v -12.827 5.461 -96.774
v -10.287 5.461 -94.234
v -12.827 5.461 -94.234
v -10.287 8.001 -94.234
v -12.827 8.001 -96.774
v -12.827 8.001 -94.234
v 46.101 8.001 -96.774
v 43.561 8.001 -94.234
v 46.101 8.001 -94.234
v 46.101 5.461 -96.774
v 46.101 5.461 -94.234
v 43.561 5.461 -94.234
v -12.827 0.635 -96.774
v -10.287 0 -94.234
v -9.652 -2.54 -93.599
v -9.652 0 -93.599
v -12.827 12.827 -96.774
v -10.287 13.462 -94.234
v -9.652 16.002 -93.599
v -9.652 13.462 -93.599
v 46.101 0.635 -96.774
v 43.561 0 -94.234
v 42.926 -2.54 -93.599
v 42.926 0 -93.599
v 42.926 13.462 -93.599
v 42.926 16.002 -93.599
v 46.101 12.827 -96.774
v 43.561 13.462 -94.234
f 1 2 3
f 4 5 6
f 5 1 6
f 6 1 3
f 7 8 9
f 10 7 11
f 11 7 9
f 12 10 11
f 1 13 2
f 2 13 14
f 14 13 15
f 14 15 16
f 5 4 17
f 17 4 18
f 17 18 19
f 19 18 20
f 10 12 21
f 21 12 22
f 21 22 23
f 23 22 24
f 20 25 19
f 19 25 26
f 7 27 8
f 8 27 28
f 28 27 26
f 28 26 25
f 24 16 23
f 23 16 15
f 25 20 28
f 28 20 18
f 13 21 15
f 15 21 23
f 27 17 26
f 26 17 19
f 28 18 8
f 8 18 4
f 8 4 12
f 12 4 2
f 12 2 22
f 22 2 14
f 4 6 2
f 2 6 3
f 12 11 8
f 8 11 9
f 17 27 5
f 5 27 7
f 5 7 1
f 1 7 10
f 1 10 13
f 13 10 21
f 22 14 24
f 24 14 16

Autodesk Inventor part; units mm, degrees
ref_plane "YZ Plane" through (0, 0, 0) normal (1, 0, 0) x (0, 1, 0)
ref_plane "XZ Plane" through (0, 0, 0) normal (0, 1, 0) x (-1, 0, 0)
sketch "Sketch1" plane through (0, 0, 0) normal (0, 0, 1) x (1, 0, 0)
  line L0 (0, 0) -> (33.274, 0)
  line L1 (33.274, 0) -> (33.274, 13.462)
  line L2 (33.274, 13.462) -> (0, 13.462)
  line L3 (0, 13.462) -> (0, 0)
  line L4 (-2.54, 16.002) -> (35.814, 16.002)
  line L5 (35.814, 16.002) -> (35.814, -2.54)
  line L6 (35.814, -2.54) -> (-2.54, -2.54)
  line L7 (-2.54, -2.54) -> (-2.54, 16.002)
  dimension "d0" = 33.274
  dimension "d1" = 13.462
  dimension "d2" = 2.54
extrude "Extrusion1" add sketch "Sketch1" against normal blind 13.208
sketch "Sketch3" plane through (0, 0, 0) normal (0, 0, 1) x (1, 0, 0)
  line L0 (14.986, 16.002) -> (14.986, 13.462)
  line L1 (0, 13.462) -> (33.274, 13.462)
  line L2 (35.814, 16.002) -> (-2.54, 16.002)
  line L3 (-2.54, 16.002) -> (-2.54, -2.54)
  line L4 (18.288, 16.002) -> (18.288, 13.462)
  line L5 (35.814, -2.54) -> (35.814, 16.002)
  line L6 (14.986, 16.002) -> (18.288, 16.002)
  line L7 (18.288, 13.462) -> (14.986, 13.462)
  line L8 (33.274, 13.462) -> (33.274, 0)
  line L9 (0, 0) -> (0, 13.462)
  dimension "d5" = 0
  dimension "d6" = 0
  dimension "d7" = 14.986
  dimension "d8" = 14.986
extrude "Extrusion2" cut sketch "Sketch3" against normal blind 7.62
sketch "Sketch4" plane through (0, 0, 0) normal (0, 1, 0) x (-1, 0, 0)
  line L0 (10.287, -23.368) -> (-43.561, -23.368)
  line L1 (-43.561, -23.368) -> (-43.561, -94.234)
  line L2 (-43.561, -94.234) -> (10.287, -94.234)
  line L3 (10.287, -94.234) -> (10.287, -23.368)
  circle A0 centre (-41.529, -25.4) radius 1.016
  circle A1 centre (8.255, -25.4) radius 1.016
  circle A2 centre (8.255, -92.202) radius 1.016
  circle A3 centre (-41.529, -92.202) radius 1.016
  line L4 (-33.274, -13.208) -> (0, -13.208) projected
  line L5 (-16.637, -13.208) -> (-16.637, -16.4825)
  point P0 (0, 0)
  dimension "d11" = 53.848
  dimension "d12" = 70.866
  dimension "d14" = 2.032
  dimension "d15" = 2.032
  dimension "d16" = 2.032
  dimension "d17" = 2.032
  dimension "d18" = 2.032
  dimension "d19" = 2.032
  dimension "d20" = 2.032
  dimension "d21" = 2.032
  dimension "d22" = 2.032
  dimension "d23" = 2.032
  dimension "d24" = 2.032
  dimension "d25" = 2.032
  dimension "d26" = 26.924
  dimension "d27" = 10.16
ref_plane "Work Plane1" through (0, 0, -23.368) normal (0, 0, -1) x (-1, 0, 0)
sketch "Sketch5" plane through (0, 0, -23.368) normal (0, 0, -1) x (-1, 0, 0)
  line L0 (10.287, 0) -> (-43.561, 0) projected
  line L1 (-43.561, 0) -> (10.287, 0)
  line L2 (10.287, 13.462) -> (10.287, 0)
  line L3 (10.287, 0) -> (-43.561, 0)
  line L4 (12.827, -2.54) -> (-46.101, -2.54)
  line L5 (-46.101, -2.54) -> (-46.101, 16.002)
  line L6 (-46.101, -2.54) -> (12.827, -2.54)
  line L7 (12.827, -2.54) -> (12.827, 16.002)
  line L8 (12.827, 16.002) -> (-46.101, 16.002)
  line L9 (-46.101, 16.002) -> (-46.101, -2.54)
  line L10 (10.287, 0) -> (-43.561, 0)
  line L11 (-43.561, 0) -> (-43.561, 13.462)
  line L12 (-43.561, 13.462) -> (10.287, 13.462)
  line L13 (10.287, 13.462) -> (10.287, 0)
  point P0 (0, 0)
sketch "Sketch6" plane through (0, 0, -13.208) normal (0, 0, -1) x (-1, 0, 0)
  line L0 (-35.814, -2.54) -> (2.54, -2.54) projected
  line L1 (2.54, -2.54) -> (2.54, 16.002) projected
  line L2 (2.54, 16.002) -> (-35.814, 16.002) projected
  line L3 (-35.814, 16.002) -> (-35.814, -2.54) projected
  line L4 (0, 13.462) -> (0, 0) projected
  line L5 (0, 0) -> (-33.274, 0) projected
  line L6 (-33.274, 0) -> (-33.274, 13.462) projected
  line L7 (-33.274, 13.462) -> (0, 13.462) projected
extrude "Extrusion3" add sketch "Sketch5" along normal blind 73.406
sketch "Sketch7" plane through (0, 0, -23.368) normal (0, 0, 1) x (1, 0, 0)
  line L0 (46.101, 16.002) -> (46.101, -2.54) projected
  line L1 (-12.827, 16.002) -> (46.101, 16.002) projected
  line L2 (-12.827, -2.54) -> (-12.827, 16.002) projected
  line L3 (46.101, -2.54) -> (-12.827, -2.54) projected
  line L4 (43.561, 13.462) -> (-10.287, 13.462) projected
  line L5 (43.561, 0) -> (43.561, 13.462) projected
  line L6 (-10.287, 0) -> (43.561, 0) projected
  line L7 (-10.287, 13.462) -> (-10.287, 0) projected
  point P0 (0, 0)
sketch "Sketch8" plane through (0, 0, -23.368) normal (0, 0, 1) x (1, 0, 0)
  point P0 (0, 0)
sketch "Sketch9" plane through (0, 0, 0) normal (0, 1, 0) x (-1, 0, 0)
  line L0 (2.54, -13.208) -> (-35.814, -13.208) projected
  line L1 (12.827, -23.368) -> (2.54, -13.208)
  line L2 (2.54, -13.208) -> (-35.814, -13.208)
  line L3 (-45.8486, -23.368) -> (12.827, -23.368)
  line L4 (-35.814, 0) -> (-35.814, -13.208) projected
  line L5 (-46.101, -23.368) -> (12.827, -23.368) projected
  line L6 (-35.814, -13.208) -> (-46.101, -23.368)
  line L7 (-46.101, -23.368) -> (12.827, -23.368)
  point P0 (0, 0)
extrude "Extrusion5" add sketch "Sketch9" against normal blind 2.54
sketch "Sketch11" plane through (0, 0, 0) normal (0, 1, 0) x (1, 0, 0)
  line L0 (33.274, 0) -> (0, 0) projected
  line L1 (33.274, 0) -> (33.274, 13.208) projected
  line L2 (35.814, 13.208) -> (33.274, 13.208) projected
  line L3 (35.814, 13.208) -> (46.101, 23.368) projected
  line L4 (43.561, 23.368) -> (46.101, 23.368) projected
  line L5 (43.561, 23.368) -> (43.561, 96.774) projected
  line L6 (-10.287, 96.774) -> (43.561, 96.774) projected
  line L7 (-10.287, 23.368) -> (-10.287, 96.774) projected
  line L8 (-12.827, 23.368) -> (-10.287, 23.368) projected
  line L9 (-12.827, 23.368) -> (-2.54, 13.208) projected
  line L10 (0, 13.208) -> (-2.54, 13.208) projected
  line L11 (0, 0) -> (0, 13.208) projected
  line L12 (-12.827, 23.368) -> (-2.54, 13.208) projected
  line L13 (-11.0421, 25.1752) -> (0, 14.2694)
  line L14 (0, 0) -> (0, 13.208) projected
  line L15 (0, 13.208) -> (0, 14.2694)
  line L16 (-10.287, 23.368) -> (-10.287, 96.774) projected
  line L17 (-10.287, 24.4294) -> (-10.287, 23.368)
  line L18 (-12.827, 23.368) -> (-10.287, 23.368) projected
  line L19 (-10.287, 23.368) -> (-12.827, 23.368)
  line L20 (-2.54, 0) -> (-2.54, 13.208) projected
  line L21 (-12.827, 23.368) -> (-2.54, 13.208)
  line L22 (-2.54, 13.208) -> (0, 13.208)
  line L23 (16.637, 13.208) -> (16.637, 17.9384)
  line L24 (46.101, 23.368) -> (43.561, 23.368)
  line L25 (46.101, 23.368) -> (35.814, 13.208)
  line L26 (44.3161, 25.1752) -> (33.274, 14.2694)
  line L27 (33.274, 13.208) -> (33.274, 14.2694)
  line L28 (43.561, 24.4294) -> (43.561, 23.368)
  line L29 (35.814, 13.208) -> (33.274, 13.208)
  point P0 (43.561, 24.4294)
  dimension "d40" = 2.54
extrude "Extrusion7" add sketch "Sketch11" along normal up to surface (13.462 mm away) contours L27 L26 L5 L4 L3 L2 | L10 L9 L8 L7 L13 L15
sketch "Sketch12" plane through (-12.827, 13.462, -23.368) normal (0, 1, 0) x (1, 0, 0)
  line L0 (58.928, 0) -> (55.3134, 0) projected
  line L1 (55.3134, 0) -> (46.101, -9.0986) projected
  line L2 (46.101, -9.0986) -> (46.101, -10.16) projected
  line L3 (48.641, -10.16) -> (46.101, -10.16) projected
  line L4 (48.641, -10.16) -> (58.928, 0) projected
  line L5 (3.6146, 0) -> (0, 0) projected
  line L6 (0, 0) -> (10.287, -10.16) projected
  line L7 (12.827, -10.16) -> (10.287, -10.16) projected
  line L8 (12.827, -10.16) -> (12.827, -9.0986) projected
  line L9 (12.827, -9.0986) -> (3.6146, 0) projected
  line L10 (12.827, -23.368) -> (12.827, -10.16) projected
  line L11 (12.827, -10.16) -> (46.101, -10.16)
  line L12 (55.3134, 0) -> (3.6146, 0) projected
  line L13 (55.3134, 0) -> (3.6146, 0)
extrude "Extrusion8" add sketch "Sketch12" along normal blind 2.54
sketch "Sketch13" plane through (0, 0, 0) normal (0, 1, 0) x (1, 0, 0)
  line L0 (43.561, 94.234) -> (-10.287, 94.234) projected
  line L1 (46.101, 96.774) -> (-12.827, 96.774) projected
  line L2 (-10.287, 94.234) -> (43.561, 94.234)
  line L3 (43.561, 94.234) -> (43.561, 96.774)
  line L4 (43.561, 96.774) -> (-10.287, 96.774)
  line L5 (-10.287, 96.774) -> (-10.287, 94.234)
  point P0 (0, 0)
  point P1 (-10.287, 96.774)
extrude "Extrusion9" add sketch "Sketch13" along normal up to next
chamfer "Chamfer1" distance 3.175 angle 45 14 edges at (-12.827, 16.002, -60.071) (46.101, 16.002, -60.071) (46.101, -2.54, -60.071) (-12.827, -2.54, -60.071) (16.637, 16.002, -96.774) (16.637, -2.54, -96.774) (40.9575, 16.002, -18.288) (40.9575, -2.54, -18.288) (-7.6835, 16.002, -18.288) (-7.6835, -2.54, -18.288) (35.814, 16.002, -6.604) (35.814, -2.54, -6.604) (-2.54, 16.002, -6.604) (-2.54, -2.54, -6.604)
sketch "Sketch15" plane through (14.986, 16.002, -7.62) normal (0, 1, 0) x (1, 0, 0)
  line L0 (17.653, 6.9147) -> (17.653, -7.62)
  line L1 (17.653, -7.62) -> (20.828, -7.62)
  line L2 (20.828, -7.62) -> (20.828, 5.588)
  line L3 (20.828, 5.588) -> (17.653, 6.9147)
  line L4 (17.653, 6.9147) -> (17.653, -7.62)
  line L5 (27.94, 17.0747) -> (17.653, 6.9147)
  line L6 (27.94, 85.979) -> (27.94, 17.0747)
  line L7 (-24.638, 85.979) -> (27.94, 85.979)
  line L8 (-24.638, 17.0747) -> (-24.638, 85.979)
  line L9 (-14.351, 6.9147) -> (-24.638, 17.0747)
  line L10 (-14.351, -7.62) -> (-14.351, 6.9147)
  line L11 (0, -7.62) -> (-14.351, -7.62)
  line L12 (0, -7.62) -> (0, 0)
  line L13 (0, 0) -> (3.302, 0)
  line L14 (3.302, 0) -> (3.302, -7.62)
  line L15 (17.653, -7.62) -> (3.302, -7.62)
  line L16 (-17.526, 5.588) -> (-17.526, -7.62)
  line L17 (-17.526, -7.62) -> (-14.351, -7.62)
  line L18 (-14.351, -7.62) -> (-14.351, 6.9147)
  line L19 (-14.351, 6.9147) -> (-17.526, 5.588)
  line L20 (-14.351, 6.9147) -> (-24.638, 17.0747)
  line L21 (-24.638, 17.0747) -> (-27.813, 15.748)
  line L22 (-27.813, 15.748) -> (-17.526, 5.588)
  line L23 (-14.351, 6.9147) -> (-17.526, 5.588)
  line L24 (-27.813, 89.154) -> (-27.813, 15.748)
  line L25 (-24.638, 17.0747) -> (-27.813, 15.748)
  line L26 (-24.638, 17.0747) -> (-24.638, 85.979)
  line L27 (-24.638, 85.979) -> (-27.813, 89.154)
  line L28 (31.115, 15.748) -> (31.115, 89.154)
  line L29 (-25.273, 16.8094) -> (-25.273, 86.614)
  line L30 (-25.273, 16.8094) -> (-14.986, 6.6494)
  line L31 (-14.986, -7.62) -> (-14.986, 6.6494)
  line L32 (18.288, -7.62) -> (-14.986, -7.62)
  line L33 (18.288, -7.62) -> (18.288, 6.6494)
  line L34 (18.288, 6.6494) -> (28.575, 16.8094)
  line L35 (28.575, 16.8094) -> (28.575, 86.614)
  line L36 (20.828, 5.588) -> (31.115, 15.748)
  line L37 (20.828, 5.588) -> (31.115, 15.748)
  line L38 (27.94, 17.0747) -> (31.115, 15.748)
  line L39 (27.94, 17.0747) -> (17.653, 6.9147)
  line L40 (20.828, 5.588) -> (17.653, 6.9147)
  line L41 (31.115, 15.748) -> (31.115, 89.154)
  line L42 (31.115, 89.154) -> (27.94, 85.979)
  line L43 (27.94, 85.979) -> (27.94, 17.0747)
  line L44 (27.94, 17.0747) -> (31.115, 15.748)
extrude "Extrusion10" cut sketch "Sketch15" against normal through all
sketch "Sketch16" plane through (-10.287, 0, -94.234) normal (0, 0, 1) x (1, 0, 0)
  line L0 (0, 0) -> (0.635, 0) projected
  line L1 (0, 0) -> (0, 13.462) projected
  line L2 (0.635, 13.462) -> (0, 13.462) projected
  line L3 (0.635, 16.002) -> (0.635, 13.462) projected
  line L4 (0.635, 16.002) -> (-2.54, 12.827) projected
  line L5 (-2.54, 0.635) -> (-2.54, 12.827) projected
  line L6 (-2.54, 0.635) -> (0.635, -2.54) projected
  line L7 (0.635, 0) -> (0.635, -2.54) projected
  line L8 (53.213, 0) -> (53.848, 0) projected
  line L9 (53.213, 0) -> (53.213, -2.54) projected
  line L10 (53.213, -2.54) -> (56.388, 0.635) projected
  line L11 (56.388, 12.827) -> (56.388, 0.635) projected
  line L12 (56.388, 12.827) -> (53.213, 16.002) projected
  line L13 (53.213, 16.002) -> (53.213, 13.462) projected
  line L14 (53.848, 13.462) -> (53.213, 13.462) projected
  line L15 (53.848, 13.462) -> (53.848, 0) projected
  line L16 (0, 0) -> (0, 13.462) projected
  line L17 (-2.54, 0.635) -> (-2.54, 12.827) projected
  line L18 (0, 8.001) -> (-2.54, 8.001)
  line L19 (0, 5.461) -> (-2.54, 5.461)
  line L20 (-2.54, 8.001) -> (0, 8.001)
  line L21 (0, 8.001) -> (0, 5.461)
  line L22 (0, 5.461) -> (-2.54, 5.461)
  line L23 (-2.54, 5.461) -> (-2.54, 8.001)
  line L24 (53.848, 13.462) -> (53.848, 0) projected
  line L25 (56.388, 12.827) -> (56.388, 0.635) projected
  line L26 (53.848, 5.461) -> (56.388, 5.461)
  line L27 (56.388, 5.461) -> (56.388, 8.001)
  line L28 (56.388, 8.001) -> (53.848, 8.001)
  line L29 (53.848, 8.001) -> (53.848, 5.461)
  point P0 (10.287, 0)
  point P1 (-2.54, 5.461)
  point P2 (0, 5.461)
  point P3 (0, 8.001)
  point P4 (-2.54, 8.001)
extrude "Extrusion11" add sketch "Sketch16" against normal up to surface (2.54 mm away) contours L19 L5 L18 L1 | L15 L28 L11 L26
properties part number "Cap"
